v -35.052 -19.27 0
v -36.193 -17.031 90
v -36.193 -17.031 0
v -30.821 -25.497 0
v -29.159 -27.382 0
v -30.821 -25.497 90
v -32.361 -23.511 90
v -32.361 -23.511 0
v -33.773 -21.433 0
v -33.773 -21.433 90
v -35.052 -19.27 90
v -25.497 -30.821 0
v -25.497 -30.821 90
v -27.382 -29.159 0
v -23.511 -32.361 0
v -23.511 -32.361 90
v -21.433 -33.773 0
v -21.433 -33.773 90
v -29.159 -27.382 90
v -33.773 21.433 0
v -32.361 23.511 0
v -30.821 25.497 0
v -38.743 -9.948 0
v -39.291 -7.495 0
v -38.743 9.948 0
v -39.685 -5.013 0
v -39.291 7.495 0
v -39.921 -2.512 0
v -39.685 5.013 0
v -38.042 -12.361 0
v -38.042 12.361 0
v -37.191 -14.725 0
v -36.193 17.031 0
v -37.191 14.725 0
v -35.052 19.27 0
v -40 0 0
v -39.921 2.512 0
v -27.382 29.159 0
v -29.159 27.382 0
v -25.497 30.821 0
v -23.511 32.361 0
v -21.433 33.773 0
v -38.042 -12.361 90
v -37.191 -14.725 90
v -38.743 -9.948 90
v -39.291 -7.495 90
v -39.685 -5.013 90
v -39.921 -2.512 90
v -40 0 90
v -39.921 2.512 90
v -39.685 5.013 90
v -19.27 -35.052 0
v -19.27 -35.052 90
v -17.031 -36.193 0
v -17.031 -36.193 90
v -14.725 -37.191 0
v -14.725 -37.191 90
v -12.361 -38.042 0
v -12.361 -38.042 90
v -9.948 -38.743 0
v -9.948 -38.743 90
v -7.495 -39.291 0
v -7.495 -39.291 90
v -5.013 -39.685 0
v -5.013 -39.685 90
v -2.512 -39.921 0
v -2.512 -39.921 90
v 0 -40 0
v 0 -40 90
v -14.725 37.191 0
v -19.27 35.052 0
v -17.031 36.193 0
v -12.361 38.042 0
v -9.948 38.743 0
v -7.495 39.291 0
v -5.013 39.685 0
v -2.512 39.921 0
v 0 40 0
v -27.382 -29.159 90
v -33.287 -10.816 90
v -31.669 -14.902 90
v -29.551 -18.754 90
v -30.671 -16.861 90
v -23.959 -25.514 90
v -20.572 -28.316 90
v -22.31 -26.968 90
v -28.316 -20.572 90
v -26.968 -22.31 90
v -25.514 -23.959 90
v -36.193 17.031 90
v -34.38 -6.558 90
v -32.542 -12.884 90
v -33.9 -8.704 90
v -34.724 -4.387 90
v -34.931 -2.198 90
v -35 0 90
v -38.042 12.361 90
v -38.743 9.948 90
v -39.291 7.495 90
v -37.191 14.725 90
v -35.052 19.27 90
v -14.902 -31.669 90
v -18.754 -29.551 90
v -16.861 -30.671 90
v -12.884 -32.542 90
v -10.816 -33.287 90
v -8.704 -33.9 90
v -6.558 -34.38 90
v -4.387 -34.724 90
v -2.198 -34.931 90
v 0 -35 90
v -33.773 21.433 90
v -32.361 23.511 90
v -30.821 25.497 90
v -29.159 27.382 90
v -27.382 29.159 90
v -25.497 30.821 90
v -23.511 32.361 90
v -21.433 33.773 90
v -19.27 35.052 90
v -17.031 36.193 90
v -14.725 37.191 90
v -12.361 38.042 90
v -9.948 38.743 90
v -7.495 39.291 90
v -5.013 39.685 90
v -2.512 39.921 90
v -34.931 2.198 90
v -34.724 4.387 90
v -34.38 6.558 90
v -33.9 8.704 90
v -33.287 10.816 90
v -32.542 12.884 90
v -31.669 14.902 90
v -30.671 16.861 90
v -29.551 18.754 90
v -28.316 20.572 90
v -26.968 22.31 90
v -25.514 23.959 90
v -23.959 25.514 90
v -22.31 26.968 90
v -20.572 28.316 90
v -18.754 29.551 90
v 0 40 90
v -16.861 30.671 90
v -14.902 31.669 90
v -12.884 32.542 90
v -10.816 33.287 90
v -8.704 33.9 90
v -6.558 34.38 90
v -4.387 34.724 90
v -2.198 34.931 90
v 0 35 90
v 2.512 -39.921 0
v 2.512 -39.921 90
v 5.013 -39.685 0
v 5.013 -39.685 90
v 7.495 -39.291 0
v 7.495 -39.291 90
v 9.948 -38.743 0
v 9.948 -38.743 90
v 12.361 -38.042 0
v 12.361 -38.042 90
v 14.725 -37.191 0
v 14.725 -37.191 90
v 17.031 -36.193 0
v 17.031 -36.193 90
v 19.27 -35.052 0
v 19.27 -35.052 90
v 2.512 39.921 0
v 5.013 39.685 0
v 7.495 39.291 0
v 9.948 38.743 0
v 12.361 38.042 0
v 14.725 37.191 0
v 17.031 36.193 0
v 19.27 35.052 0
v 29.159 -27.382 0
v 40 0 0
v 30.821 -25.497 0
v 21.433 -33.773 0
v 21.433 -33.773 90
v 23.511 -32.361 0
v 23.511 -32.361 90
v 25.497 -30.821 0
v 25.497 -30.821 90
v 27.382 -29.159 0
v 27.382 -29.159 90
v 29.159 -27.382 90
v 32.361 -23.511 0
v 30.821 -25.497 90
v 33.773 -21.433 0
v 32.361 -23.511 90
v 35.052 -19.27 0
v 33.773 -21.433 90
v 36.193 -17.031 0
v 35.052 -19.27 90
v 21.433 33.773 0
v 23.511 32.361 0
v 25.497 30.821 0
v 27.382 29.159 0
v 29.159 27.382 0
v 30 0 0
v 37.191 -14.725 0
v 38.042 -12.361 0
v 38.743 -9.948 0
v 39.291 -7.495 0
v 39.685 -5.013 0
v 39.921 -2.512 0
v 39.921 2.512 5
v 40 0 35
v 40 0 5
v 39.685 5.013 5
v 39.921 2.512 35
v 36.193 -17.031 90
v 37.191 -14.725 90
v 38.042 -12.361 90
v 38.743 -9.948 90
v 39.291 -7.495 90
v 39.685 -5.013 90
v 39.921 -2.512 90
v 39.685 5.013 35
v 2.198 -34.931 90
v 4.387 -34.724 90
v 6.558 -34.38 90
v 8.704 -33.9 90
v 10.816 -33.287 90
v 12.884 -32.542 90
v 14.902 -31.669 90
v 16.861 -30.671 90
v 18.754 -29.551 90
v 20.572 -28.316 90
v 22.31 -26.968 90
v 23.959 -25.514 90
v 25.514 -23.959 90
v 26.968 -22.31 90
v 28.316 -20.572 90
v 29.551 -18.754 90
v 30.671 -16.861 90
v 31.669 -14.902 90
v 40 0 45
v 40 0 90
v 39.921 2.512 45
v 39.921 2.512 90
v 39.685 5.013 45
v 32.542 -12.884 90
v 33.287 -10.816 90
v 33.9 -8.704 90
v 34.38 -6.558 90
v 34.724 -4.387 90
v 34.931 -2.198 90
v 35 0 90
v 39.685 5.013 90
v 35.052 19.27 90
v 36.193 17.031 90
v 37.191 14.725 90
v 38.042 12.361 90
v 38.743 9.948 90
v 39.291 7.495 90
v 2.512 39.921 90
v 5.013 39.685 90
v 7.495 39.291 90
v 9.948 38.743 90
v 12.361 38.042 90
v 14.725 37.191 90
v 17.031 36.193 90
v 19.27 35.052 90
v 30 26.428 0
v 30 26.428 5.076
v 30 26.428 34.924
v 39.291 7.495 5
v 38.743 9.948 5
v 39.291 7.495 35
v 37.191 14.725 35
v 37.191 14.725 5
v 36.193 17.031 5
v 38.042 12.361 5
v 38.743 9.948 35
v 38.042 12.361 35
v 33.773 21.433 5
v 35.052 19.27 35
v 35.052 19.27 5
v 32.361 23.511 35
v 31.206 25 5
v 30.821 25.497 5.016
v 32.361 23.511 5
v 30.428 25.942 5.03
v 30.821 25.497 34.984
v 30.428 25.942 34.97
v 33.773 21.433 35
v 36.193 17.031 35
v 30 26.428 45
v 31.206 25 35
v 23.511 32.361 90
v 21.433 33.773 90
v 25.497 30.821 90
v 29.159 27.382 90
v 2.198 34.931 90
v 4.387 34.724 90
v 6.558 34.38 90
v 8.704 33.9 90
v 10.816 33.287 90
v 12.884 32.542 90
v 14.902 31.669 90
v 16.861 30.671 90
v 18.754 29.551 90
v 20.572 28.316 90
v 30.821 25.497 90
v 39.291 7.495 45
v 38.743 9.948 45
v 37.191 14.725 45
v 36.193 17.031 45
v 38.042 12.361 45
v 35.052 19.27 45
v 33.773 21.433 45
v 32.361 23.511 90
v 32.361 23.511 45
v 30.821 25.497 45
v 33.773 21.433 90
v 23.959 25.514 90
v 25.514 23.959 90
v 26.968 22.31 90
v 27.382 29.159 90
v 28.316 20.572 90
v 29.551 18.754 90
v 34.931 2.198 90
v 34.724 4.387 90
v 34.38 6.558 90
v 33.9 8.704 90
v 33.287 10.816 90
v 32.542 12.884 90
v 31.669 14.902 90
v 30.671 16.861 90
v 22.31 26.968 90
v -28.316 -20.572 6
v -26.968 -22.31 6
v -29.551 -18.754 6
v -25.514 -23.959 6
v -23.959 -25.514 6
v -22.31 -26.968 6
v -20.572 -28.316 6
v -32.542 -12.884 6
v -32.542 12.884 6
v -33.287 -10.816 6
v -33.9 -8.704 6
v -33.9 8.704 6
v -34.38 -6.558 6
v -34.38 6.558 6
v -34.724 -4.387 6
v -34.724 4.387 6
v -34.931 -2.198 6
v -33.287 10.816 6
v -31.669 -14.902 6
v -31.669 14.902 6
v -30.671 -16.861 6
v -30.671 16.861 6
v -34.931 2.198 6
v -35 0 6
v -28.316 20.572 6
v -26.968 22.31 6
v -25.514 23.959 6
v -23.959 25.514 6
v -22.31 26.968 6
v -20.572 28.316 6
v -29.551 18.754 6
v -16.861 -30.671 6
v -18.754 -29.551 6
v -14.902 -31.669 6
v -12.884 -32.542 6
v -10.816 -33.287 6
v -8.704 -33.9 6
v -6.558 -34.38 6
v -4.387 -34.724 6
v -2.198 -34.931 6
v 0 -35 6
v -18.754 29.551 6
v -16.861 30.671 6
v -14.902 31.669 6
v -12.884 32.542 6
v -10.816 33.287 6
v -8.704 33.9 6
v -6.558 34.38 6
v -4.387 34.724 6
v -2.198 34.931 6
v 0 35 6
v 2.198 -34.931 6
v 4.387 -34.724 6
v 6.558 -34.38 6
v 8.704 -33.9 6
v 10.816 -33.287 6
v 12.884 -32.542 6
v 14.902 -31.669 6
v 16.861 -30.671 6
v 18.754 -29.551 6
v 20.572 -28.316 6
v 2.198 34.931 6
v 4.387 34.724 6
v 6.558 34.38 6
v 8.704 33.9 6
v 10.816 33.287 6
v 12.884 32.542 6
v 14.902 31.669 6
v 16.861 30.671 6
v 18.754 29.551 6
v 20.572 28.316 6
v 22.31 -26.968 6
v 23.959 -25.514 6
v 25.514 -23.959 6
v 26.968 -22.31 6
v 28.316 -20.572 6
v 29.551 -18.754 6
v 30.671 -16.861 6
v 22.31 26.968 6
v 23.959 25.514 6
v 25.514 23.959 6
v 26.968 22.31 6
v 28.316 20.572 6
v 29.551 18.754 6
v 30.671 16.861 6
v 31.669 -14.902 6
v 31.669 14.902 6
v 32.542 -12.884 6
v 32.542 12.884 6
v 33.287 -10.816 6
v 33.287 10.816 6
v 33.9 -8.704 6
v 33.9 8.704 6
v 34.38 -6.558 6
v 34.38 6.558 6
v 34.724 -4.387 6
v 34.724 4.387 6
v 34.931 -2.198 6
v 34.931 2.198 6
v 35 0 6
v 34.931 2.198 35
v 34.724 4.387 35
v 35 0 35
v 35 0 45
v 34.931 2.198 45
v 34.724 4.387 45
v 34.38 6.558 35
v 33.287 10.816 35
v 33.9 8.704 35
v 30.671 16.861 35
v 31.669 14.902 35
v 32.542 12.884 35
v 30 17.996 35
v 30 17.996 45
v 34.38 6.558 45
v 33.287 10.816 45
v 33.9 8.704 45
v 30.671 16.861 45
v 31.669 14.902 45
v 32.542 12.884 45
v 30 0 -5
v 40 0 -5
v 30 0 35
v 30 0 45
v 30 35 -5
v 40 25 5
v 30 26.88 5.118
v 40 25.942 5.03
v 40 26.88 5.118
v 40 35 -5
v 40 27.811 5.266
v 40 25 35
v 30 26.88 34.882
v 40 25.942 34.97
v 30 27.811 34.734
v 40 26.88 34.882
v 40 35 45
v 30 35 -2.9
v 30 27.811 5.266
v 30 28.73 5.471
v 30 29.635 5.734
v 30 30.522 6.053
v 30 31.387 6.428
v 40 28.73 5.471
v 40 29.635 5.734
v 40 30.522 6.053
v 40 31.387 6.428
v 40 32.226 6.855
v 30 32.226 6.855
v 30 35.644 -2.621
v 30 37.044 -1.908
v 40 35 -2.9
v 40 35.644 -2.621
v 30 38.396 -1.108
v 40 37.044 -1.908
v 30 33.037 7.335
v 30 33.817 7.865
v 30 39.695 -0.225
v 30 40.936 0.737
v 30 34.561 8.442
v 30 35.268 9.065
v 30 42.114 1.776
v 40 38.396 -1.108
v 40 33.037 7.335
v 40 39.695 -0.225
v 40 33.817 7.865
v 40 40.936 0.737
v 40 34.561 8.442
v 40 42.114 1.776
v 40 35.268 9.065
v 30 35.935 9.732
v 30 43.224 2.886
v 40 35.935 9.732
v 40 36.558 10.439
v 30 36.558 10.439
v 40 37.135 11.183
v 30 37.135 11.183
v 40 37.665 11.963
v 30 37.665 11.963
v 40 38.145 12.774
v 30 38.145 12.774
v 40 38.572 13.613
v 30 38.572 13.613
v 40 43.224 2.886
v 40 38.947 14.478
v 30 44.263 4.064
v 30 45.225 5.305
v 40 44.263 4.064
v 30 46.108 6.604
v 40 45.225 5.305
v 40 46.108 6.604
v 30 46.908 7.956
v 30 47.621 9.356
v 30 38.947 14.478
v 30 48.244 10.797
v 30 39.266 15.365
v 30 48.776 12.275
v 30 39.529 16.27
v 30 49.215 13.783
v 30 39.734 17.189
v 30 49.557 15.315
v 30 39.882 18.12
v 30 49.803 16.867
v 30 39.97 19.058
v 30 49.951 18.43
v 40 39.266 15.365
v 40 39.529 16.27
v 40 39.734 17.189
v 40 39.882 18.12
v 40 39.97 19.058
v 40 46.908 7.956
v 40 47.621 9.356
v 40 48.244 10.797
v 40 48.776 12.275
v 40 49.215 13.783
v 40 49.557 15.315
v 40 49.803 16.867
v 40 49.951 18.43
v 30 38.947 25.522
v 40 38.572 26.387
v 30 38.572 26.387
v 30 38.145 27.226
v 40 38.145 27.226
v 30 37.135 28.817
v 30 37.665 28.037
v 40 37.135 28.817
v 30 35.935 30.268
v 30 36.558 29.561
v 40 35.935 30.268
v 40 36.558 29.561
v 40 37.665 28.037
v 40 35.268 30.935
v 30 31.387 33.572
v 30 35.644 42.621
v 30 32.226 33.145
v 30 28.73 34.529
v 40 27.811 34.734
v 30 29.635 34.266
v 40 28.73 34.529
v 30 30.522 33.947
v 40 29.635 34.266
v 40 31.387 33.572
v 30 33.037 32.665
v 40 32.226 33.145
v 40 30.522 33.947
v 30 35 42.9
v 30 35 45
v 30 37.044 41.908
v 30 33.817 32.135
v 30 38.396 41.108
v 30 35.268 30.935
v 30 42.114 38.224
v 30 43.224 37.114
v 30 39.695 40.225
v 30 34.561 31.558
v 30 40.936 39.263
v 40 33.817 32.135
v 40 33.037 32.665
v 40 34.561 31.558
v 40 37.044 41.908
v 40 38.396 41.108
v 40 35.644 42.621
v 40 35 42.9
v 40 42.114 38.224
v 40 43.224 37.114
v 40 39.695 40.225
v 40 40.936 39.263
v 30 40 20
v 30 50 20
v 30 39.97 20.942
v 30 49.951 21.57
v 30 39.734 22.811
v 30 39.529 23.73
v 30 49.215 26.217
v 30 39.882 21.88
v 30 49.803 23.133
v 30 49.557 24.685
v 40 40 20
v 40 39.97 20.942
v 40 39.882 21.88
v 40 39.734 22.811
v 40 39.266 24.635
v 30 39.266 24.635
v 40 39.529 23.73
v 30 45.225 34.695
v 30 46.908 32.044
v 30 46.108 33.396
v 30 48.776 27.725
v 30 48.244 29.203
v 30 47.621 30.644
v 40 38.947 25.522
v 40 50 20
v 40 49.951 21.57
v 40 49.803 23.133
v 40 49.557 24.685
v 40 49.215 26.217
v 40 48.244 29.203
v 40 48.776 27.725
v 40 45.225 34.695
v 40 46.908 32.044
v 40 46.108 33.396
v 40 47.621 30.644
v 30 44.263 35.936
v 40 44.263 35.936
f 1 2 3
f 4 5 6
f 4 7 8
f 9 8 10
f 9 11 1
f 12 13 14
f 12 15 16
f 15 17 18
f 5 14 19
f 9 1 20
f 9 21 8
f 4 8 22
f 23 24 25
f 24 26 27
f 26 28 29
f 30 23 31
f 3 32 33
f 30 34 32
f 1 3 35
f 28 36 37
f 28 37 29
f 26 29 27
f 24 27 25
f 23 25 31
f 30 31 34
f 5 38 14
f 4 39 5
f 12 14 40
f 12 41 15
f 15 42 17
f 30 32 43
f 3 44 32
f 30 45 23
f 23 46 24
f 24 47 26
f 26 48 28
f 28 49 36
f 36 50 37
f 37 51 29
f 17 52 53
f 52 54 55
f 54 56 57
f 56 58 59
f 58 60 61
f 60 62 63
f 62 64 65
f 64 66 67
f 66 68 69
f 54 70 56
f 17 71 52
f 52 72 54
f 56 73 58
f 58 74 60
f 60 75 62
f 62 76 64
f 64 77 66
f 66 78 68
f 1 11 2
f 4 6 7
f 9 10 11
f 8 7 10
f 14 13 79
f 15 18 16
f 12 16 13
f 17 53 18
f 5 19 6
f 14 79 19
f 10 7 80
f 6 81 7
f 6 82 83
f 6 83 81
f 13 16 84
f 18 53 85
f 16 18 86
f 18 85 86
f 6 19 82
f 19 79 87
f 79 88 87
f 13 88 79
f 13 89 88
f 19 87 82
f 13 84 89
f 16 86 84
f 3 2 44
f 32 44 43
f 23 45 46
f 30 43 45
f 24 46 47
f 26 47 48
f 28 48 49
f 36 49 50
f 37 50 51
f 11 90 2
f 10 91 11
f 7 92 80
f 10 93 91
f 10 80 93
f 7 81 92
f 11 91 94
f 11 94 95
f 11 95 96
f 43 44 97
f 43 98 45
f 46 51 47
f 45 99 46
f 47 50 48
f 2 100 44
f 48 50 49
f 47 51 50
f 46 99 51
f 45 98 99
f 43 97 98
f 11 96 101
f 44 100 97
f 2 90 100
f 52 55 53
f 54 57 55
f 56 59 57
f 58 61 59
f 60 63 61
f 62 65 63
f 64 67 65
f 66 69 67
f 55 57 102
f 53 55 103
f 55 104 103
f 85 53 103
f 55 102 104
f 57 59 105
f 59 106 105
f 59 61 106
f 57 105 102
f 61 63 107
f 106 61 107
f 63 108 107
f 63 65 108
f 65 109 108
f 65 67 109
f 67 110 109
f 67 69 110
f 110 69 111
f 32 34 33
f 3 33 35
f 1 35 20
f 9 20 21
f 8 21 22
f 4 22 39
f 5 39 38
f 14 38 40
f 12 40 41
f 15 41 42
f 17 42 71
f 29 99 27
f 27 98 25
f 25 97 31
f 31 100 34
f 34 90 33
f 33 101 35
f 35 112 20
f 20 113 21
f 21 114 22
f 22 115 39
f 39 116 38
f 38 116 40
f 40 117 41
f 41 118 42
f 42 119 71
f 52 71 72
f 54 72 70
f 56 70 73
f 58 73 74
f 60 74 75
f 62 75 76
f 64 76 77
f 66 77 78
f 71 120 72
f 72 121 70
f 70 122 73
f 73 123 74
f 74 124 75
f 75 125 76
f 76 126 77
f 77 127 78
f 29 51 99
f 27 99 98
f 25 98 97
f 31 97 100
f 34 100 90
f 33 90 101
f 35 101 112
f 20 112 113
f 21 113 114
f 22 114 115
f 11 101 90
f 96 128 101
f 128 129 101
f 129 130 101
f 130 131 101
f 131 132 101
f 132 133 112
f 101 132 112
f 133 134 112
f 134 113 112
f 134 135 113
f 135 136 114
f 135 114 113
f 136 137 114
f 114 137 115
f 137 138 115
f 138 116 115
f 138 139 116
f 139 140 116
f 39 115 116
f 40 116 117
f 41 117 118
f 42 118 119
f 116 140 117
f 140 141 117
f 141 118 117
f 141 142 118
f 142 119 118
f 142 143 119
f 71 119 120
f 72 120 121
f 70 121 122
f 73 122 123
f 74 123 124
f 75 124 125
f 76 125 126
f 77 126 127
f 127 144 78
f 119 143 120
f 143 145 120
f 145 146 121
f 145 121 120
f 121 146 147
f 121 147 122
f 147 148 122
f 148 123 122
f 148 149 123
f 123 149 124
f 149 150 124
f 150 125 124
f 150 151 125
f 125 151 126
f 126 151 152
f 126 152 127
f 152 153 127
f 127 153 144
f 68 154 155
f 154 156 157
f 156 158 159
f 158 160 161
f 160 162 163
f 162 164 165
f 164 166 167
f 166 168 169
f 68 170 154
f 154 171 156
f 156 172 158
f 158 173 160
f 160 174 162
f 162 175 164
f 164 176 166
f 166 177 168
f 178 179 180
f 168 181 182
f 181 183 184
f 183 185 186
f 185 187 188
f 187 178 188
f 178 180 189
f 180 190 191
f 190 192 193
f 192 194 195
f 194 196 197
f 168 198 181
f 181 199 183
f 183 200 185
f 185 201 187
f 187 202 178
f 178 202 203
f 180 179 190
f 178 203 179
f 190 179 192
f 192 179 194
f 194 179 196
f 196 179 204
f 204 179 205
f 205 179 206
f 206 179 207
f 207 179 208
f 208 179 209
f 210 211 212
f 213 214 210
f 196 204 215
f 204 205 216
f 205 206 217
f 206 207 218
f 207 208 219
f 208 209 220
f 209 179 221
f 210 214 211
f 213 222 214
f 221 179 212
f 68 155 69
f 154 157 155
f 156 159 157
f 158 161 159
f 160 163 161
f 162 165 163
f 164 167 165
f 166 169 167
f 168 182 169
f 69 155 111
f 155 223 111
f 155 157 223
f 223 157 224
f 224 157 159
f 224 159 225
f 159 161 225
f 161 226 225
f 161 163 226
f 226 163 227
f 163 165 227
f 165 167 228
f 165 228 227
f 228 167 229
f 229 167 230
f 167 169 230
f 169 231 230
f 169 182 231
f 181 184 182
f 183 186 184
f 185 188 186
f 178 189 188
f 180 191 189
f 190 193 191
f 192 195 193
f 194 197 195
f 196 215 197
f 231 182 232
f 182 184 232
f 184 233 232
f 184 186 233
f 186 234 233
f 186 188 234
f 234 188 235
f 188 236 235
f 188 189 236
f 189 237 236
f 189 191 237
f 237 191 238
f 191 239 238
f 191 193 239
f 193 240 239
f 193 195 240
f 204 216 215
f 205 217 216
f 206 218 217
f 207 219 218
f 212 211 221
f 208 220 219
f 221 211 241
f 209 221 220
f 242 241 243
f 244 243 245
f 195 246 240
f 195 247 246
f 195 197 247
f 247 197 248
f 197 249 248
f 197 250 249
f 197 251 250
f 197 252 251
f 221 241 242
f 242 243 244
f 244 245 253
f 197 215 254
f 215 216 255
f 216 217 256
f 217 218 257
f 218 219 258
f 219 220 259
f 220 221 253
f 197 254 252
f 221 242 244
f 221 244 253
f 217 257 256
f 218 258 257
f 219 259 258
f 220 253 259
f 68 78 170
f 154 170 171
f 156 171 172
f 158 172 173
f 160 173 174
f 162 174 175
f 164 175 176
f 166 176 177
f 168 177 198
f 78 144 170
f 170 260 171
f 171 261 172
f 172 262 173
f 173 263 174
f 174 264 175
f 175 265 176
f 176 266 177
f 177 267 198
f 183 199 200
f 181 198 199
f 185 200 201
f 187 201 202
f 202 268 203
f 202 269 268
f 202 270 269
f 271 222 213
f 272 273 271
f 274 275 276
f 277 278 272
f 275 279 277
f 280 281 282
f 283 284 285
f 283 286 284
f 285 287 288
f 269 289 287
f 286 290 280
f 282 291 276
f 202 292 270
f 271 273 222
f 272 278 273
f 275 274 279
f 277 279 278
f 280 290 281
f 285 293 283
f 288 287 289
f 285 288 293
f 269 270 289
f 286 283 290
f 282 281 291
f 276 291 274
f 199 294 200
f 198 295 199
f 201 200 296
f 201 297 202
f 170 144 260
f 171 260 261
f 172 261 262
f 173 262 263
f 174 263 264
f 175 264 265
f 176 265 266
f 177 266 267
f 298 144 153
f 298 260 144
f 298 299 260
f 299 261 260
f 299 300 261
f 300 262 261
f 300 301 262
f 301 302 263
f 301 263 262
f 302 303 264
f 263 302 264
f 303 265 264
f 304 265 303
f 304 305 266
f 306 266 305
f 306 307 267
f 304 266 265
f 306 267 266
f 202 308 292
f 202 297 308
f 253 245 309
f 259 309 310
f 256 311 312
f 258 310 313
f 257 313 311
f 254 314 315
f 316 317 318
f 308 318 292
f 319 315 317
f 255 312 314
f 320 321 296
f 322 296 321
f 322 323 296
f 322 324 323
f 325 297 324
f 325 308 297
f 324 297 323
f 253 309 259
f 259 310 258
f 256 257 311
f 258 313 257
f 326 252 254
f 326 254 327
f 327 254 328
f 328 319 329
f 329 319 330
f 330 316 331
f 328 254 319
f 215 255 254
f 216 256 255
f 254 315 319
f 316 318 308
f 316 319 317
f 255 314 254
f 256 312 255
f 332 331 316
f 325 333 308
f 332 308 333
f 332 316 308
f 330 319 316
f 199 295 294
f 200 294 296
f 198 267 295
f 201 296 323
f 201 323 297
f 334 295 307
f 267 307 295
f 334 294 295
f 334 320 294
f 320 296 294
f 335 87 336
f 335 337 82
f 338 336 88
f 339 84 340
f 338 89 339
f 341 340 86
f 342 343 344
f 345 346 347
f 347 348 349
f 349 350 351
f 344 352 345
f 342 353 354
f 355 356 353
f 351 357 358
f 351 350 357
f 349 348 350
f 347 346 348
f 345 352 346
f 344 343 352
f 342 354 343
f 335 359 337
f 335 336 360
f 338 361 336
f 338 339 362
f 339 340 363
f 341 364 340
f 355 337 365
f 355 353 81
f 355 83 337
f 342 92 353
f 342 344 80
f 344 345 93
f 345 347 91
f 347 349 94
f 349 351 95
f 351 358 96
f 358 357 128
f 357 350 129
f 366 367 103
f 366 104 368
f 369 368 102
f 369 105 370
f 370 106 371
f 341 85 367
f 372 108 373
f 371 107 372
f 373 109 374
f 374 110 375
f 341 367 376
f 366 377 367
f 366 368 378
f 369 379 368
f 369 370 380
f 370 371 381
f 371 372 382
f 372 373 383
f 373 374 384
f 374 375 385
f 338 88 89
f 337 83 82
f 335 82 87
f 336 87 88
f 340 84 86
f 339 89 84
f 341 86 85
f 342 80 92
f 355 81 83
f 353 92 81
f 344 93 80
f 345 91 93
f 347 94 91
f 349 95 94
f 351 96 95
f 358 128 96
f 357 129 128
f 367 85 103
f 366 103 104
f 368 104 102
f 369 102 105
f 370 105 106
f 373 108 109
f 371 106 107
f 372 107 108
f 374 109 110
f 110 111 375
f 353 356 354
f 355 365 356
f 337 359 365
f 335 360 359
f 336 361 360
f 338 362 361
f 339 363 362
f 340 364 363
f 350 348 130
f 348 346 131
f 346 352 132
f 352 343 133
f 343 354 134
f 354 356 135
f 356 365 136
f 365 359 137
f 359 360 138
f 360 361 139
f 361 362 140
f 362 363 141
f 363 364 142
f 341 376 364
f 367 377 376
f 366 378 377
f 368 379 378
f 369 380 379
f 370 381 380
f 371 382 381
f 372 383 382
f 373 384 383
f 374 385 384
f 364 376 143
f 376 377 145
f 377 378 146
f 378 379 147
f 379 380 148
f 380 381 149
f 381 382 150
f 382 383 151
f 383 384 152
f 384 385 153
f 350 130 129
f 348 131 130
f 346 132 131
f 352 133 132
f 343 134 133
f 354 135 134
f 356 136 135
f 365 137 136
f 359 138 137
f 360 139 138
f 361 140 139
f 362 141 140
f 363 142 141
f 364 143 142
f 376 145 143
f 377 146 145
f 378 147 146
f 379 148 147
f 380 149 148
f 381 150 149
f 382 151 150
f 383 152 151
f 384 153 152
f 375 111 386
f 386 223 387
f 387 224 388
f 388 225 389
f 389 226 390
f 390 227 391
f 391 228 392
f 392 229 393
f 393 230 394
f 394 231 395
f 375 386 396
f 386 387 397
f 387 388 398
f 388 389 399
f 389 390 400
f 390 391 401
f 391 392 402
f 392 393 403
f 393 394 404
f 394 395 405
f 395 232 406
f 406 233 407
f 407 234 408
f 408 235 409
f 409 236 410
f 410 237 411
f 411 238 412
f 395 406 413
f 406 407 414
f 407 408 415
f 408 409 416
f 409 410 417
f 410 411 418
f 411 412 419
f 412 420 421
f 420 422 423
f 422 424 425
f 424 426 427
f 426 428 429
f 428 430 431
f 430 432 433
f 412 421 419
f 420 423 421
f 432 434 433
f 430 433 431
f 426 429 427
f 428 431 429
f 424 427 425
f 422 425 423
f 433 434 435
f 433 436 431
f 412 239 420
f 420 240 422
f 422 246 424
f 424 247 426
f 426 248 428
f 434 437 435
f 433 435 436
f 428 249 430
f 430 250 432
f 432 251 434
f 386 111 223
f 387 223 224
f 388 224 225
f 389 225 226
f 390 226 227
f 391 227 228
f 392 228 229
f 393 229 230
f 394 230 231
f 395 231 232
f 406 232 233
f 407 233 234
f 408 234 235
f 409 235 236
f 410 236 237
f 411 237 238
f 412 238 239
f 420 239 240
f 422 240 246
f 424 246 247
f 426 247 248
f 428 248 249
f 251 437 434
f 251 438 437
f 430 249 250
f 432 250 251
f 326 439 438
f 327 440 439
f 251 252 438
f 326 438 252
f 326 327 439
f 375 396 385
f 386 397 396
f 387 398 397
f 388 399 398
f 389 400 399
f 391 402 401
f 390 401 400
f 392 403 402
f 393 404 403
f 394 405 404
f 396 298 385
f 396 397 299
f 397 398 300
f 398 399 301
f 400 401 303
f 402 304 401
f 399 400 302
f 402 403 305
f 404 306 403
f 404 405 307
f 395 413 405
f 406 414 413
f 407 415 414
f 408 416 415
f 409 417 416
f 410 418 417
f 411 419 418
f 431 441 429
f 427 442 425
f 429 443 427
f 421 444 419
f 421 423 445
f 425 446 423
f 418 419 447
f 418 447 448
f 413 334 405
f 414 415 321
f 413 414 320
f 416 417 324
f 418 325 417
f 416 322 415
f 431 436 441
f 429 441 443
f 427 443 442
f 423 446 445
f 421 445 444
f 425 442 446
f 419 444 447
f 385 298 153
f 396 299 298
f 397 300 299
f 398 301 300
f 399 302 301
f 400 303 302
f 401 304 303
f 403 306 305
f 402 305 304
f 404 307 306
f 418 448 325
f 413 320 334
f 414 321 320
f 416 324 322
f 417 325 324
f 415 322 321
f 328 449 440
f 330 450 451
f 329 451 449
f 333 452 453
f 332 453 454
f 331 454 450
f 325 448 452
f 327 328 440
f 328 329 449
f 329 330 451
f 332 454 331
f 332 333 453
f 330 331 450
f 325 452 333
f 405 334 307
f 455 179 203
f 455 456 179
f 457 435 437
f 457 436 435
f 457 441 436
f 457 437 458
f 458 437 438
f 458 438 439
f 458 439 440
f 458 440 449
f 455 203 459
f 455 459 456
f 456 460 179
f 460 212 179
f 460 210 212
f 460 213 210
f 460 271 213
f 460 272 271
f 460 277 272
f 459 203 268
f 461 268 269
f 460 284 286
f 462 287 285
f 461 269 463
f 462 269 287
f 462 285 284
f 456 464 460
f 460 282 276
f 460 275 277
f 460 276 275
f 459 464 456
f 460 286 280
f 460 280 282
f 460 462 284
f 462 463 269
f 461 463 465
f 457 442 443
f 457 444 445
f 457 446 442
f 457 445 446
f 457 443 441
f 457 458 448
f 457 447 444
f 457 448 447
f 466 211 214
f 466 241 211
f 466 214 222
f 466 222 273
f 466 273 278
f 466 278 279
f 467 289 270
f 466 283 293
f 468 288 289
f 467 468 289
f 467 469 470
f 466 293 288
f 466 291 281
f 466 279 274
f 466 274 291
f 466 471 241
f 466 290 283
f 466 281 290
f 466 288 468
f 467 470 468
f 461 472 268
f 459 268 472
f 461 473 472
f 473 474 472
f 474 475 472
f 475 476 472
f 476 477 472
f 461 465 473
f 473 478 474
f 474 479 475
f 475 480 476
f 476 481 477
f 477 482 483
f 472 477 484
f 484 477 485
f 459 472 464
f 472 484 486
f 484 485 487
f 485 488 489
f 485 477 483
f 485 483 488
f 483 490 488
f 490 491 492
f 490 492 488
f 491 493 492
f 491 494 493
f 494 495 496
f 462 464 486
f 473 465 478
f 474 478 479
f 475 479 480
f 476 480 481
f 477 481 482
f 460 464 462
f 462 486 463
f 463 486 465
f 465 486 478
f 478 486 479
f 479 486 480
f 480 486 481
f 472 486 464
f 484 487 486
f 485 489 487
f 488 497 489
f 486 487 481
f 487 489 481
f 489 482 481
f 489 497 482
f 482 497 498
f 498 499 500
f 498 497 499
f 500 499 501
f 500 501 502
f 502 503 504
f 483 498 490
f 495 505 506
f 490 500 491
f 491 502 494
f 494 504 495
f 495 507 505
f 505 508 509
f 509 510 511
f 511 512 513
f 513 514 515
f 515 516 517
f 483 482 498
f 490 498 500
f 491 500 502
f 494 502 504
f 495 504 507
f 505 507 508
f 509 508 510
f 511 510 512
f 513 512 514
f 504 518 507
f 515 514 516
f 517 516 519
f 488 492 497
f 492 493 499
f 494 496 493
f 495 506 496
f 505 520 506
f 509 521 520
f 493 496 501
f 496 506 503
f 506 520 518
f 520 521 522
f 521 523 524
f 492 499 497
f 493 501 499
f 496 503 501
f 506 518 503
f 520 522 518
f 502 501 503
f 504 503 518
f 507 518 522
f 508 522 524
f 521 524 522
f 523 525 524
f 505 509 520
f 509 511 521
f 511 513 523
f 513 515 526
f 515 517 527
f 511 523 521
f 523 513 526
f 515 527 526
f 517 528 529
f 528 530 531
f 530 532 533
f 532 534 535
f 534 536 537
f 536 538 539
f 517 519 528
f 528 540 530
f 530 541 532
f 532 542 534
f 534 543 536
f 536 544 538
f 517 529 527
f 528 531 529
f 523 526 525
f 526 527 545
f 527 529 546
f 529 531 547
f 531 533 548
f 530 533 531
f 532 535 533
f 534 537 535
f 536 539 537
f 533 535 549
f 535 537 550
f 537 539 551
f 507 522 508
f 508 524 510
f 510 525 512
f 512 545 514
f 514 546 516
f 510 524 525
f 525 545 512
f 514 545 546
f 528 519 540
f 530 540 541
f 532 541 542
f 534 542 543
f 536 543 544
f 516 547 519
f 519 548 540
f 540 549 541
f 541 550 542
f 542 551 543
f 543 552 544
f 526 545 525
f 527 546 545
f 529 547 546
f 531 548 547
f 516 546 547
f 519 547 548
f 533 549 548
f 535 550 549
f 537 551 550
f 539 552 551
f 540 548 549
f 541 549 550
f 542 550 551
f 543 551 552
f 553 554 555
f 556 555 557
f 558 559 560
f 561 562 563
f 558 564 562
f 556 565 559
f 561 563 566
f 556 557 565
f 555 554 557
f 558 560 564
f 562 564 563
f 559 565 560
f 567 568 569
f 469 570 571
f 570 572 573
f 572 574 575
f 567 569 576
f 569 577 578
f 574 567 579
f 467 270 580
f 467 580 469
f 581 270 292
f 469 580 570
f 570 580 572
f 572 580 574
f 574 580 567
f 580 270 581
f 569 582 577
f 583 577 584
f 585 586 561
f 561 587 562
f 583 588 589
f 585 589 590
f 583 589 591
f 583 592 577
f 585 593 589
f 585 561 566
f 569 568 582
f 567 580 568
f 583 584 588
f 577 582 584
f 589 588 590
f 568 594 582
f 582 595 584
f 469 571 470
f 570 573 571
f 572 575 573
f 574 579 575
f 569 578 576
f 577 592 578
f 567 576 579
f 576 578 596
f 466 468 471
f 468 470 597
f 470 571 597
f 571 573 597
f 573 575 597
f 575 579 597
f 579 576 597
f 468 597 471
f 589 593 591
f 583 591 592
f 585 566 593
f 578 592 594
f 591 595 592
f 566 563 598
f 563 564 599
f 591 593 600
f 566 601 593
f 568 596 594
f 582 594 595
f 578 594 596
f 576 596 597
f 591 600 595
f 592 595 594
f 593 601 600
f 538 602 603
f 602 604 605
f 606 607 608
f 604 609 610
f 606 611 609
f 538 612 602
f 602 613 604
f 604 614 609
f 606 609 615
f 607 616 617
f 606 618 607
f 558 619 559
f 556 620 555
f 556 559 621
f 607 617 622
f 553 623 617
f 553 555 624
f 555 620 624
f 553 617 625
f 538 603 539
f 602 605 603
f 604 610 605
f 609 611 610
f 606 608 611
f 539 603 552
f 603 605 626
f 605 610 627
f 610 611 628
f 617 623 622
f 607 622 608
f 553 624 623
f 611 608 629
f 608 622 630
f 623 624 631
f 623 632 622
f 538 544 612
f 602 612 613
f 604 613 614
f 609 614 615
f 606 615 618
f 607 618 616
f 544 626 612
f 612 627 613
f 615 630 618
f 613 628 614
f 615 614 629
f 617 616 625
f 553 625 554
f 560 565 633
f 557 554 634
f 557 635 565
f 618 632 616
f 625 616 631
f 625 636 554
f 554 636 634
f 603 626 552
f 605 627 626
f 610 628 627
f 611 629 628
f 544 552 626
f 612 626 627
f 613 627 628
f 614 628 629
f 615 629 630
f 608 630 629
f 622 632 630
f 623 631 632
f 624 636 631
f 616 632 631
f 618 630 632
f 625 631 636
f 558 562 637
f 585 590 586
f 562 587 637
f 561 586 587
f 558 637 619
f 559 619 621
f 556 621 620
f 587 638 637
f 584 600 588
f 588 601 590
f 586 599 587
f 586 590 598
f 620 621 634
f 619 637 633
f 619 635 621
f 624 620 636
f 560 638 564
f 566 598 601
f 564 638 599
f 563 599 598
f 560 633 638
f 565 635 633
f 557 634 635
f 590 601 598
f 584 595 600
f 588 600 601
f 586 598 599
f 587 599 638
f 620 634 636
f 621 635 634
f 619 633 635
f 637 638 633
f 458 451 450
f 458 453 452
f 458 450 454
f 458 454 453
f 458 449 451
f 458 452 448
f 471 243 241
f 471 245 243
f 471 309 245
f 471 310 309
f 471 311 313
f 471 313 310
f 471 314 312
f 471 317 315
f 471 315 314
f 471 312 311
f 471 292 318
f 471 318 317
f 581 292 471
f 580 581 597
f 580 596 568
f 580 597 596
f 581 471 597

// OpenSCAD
// マグカップのパラメータ
outer_dia = 80;
inner_dia = 70;
height = 90;
bottom_thickness = 6;

outer_r = outer_dia / 2;
inner_r = inner_dia / 2;
inner_height = height - bottom_thickness;

// 取手のパラメータ
handle_inner_h = 30; // 指が入る高さ
handle_inner_w = 25; // マグ本体から外側への突き出し幅（内側空間）
handle_thickness = 10; // 取手の太さ（断面の直径・幅）

// 全体のスムージング設定
$fn = 100;

module mug_body() {
    difference() {
        // 外側のシリンダー
        cylinder(h = height, r = outer_r);
        
        // 内側のくり抜き（底面6mmを残す）
        translate([0, 0, bottom_thickness])
        cylinder(h = inner_height + 1, r = inner_r);
    }
}

module handle() {
    // 取手の中心高さはマグ本体の高さの中央に合わせる
    // Z座標: (height - handle_inner_h) / 2 を基準にするが、上下の厚みも含めて計算
    
    total_handle_h = handle_inner_h + handle_thickness * 2;
    z_offset = (height - total_handle_h) / 2;
    
    // +X軸方向に取り付けるため、回転と平行移動を行う
    translate([outer_r - handle_thickness/2, 0, z_offset])
    rotate([0, 0, 0])
    union() {
        // D字形状の取手を作成
        // 本体側（直線部分）と外側（半円部分）をロフトまたは形状結合する
        
        // 外側の半円部分と上下のアームを一体のD字型として2次元形状を押し出す
        rotate([90, 0, 90])
        linear_extrude(height = handle_thickness, center = true)
        d_shape_2d();
    }
}

module d_shape_2d() {
    // 2DでのD字形状を描画し、linear_extrudeで立体にする
    // 基準位置調整のため、形状を定義
    
    inner_w = handle_inner_w;
    inner_h = handle_inner_h;
    th = handle_thickness;
    
    r_outer = (inner_h / 2) + th;
    
    difference() {
        // 外側全体のプロファイル
        union() {
            // 上下のバーと外側の半円を包含する外形
            translate([0, -inner_h/2 - th])
            square([inner_w + th, inner_h + th*2]);
            
            // 外側の丸み
            translate([inner_w, 0, 0])
            circle(r = r_outer);
        }
        
        // 内側の抜き穴（D字の中空部分）
        union() {
            translate([0, -inner_h/2])
            square([inner_w, inner_h]);
            
            // 内側の半円部分
            translate([inner_w, 0])
            circle(r = inner_h / 2);
        }
        
        // 本体食い込み防止および確実に結合するための調整用カット（必要に応じて）
        // ここでは綺麗に結合するようにマイナス座標側を削る
        translate([-th, -r_outer - th])
        square([th, (r_outer + th)*2]);
    }
}

// メイン形状の結合
union() {
    mug_body();
    
    // 取手を+X軸方向（X方向が正の向き）に配置
    // 取手の中心がX軸上にくるように調整
    handle();
}
